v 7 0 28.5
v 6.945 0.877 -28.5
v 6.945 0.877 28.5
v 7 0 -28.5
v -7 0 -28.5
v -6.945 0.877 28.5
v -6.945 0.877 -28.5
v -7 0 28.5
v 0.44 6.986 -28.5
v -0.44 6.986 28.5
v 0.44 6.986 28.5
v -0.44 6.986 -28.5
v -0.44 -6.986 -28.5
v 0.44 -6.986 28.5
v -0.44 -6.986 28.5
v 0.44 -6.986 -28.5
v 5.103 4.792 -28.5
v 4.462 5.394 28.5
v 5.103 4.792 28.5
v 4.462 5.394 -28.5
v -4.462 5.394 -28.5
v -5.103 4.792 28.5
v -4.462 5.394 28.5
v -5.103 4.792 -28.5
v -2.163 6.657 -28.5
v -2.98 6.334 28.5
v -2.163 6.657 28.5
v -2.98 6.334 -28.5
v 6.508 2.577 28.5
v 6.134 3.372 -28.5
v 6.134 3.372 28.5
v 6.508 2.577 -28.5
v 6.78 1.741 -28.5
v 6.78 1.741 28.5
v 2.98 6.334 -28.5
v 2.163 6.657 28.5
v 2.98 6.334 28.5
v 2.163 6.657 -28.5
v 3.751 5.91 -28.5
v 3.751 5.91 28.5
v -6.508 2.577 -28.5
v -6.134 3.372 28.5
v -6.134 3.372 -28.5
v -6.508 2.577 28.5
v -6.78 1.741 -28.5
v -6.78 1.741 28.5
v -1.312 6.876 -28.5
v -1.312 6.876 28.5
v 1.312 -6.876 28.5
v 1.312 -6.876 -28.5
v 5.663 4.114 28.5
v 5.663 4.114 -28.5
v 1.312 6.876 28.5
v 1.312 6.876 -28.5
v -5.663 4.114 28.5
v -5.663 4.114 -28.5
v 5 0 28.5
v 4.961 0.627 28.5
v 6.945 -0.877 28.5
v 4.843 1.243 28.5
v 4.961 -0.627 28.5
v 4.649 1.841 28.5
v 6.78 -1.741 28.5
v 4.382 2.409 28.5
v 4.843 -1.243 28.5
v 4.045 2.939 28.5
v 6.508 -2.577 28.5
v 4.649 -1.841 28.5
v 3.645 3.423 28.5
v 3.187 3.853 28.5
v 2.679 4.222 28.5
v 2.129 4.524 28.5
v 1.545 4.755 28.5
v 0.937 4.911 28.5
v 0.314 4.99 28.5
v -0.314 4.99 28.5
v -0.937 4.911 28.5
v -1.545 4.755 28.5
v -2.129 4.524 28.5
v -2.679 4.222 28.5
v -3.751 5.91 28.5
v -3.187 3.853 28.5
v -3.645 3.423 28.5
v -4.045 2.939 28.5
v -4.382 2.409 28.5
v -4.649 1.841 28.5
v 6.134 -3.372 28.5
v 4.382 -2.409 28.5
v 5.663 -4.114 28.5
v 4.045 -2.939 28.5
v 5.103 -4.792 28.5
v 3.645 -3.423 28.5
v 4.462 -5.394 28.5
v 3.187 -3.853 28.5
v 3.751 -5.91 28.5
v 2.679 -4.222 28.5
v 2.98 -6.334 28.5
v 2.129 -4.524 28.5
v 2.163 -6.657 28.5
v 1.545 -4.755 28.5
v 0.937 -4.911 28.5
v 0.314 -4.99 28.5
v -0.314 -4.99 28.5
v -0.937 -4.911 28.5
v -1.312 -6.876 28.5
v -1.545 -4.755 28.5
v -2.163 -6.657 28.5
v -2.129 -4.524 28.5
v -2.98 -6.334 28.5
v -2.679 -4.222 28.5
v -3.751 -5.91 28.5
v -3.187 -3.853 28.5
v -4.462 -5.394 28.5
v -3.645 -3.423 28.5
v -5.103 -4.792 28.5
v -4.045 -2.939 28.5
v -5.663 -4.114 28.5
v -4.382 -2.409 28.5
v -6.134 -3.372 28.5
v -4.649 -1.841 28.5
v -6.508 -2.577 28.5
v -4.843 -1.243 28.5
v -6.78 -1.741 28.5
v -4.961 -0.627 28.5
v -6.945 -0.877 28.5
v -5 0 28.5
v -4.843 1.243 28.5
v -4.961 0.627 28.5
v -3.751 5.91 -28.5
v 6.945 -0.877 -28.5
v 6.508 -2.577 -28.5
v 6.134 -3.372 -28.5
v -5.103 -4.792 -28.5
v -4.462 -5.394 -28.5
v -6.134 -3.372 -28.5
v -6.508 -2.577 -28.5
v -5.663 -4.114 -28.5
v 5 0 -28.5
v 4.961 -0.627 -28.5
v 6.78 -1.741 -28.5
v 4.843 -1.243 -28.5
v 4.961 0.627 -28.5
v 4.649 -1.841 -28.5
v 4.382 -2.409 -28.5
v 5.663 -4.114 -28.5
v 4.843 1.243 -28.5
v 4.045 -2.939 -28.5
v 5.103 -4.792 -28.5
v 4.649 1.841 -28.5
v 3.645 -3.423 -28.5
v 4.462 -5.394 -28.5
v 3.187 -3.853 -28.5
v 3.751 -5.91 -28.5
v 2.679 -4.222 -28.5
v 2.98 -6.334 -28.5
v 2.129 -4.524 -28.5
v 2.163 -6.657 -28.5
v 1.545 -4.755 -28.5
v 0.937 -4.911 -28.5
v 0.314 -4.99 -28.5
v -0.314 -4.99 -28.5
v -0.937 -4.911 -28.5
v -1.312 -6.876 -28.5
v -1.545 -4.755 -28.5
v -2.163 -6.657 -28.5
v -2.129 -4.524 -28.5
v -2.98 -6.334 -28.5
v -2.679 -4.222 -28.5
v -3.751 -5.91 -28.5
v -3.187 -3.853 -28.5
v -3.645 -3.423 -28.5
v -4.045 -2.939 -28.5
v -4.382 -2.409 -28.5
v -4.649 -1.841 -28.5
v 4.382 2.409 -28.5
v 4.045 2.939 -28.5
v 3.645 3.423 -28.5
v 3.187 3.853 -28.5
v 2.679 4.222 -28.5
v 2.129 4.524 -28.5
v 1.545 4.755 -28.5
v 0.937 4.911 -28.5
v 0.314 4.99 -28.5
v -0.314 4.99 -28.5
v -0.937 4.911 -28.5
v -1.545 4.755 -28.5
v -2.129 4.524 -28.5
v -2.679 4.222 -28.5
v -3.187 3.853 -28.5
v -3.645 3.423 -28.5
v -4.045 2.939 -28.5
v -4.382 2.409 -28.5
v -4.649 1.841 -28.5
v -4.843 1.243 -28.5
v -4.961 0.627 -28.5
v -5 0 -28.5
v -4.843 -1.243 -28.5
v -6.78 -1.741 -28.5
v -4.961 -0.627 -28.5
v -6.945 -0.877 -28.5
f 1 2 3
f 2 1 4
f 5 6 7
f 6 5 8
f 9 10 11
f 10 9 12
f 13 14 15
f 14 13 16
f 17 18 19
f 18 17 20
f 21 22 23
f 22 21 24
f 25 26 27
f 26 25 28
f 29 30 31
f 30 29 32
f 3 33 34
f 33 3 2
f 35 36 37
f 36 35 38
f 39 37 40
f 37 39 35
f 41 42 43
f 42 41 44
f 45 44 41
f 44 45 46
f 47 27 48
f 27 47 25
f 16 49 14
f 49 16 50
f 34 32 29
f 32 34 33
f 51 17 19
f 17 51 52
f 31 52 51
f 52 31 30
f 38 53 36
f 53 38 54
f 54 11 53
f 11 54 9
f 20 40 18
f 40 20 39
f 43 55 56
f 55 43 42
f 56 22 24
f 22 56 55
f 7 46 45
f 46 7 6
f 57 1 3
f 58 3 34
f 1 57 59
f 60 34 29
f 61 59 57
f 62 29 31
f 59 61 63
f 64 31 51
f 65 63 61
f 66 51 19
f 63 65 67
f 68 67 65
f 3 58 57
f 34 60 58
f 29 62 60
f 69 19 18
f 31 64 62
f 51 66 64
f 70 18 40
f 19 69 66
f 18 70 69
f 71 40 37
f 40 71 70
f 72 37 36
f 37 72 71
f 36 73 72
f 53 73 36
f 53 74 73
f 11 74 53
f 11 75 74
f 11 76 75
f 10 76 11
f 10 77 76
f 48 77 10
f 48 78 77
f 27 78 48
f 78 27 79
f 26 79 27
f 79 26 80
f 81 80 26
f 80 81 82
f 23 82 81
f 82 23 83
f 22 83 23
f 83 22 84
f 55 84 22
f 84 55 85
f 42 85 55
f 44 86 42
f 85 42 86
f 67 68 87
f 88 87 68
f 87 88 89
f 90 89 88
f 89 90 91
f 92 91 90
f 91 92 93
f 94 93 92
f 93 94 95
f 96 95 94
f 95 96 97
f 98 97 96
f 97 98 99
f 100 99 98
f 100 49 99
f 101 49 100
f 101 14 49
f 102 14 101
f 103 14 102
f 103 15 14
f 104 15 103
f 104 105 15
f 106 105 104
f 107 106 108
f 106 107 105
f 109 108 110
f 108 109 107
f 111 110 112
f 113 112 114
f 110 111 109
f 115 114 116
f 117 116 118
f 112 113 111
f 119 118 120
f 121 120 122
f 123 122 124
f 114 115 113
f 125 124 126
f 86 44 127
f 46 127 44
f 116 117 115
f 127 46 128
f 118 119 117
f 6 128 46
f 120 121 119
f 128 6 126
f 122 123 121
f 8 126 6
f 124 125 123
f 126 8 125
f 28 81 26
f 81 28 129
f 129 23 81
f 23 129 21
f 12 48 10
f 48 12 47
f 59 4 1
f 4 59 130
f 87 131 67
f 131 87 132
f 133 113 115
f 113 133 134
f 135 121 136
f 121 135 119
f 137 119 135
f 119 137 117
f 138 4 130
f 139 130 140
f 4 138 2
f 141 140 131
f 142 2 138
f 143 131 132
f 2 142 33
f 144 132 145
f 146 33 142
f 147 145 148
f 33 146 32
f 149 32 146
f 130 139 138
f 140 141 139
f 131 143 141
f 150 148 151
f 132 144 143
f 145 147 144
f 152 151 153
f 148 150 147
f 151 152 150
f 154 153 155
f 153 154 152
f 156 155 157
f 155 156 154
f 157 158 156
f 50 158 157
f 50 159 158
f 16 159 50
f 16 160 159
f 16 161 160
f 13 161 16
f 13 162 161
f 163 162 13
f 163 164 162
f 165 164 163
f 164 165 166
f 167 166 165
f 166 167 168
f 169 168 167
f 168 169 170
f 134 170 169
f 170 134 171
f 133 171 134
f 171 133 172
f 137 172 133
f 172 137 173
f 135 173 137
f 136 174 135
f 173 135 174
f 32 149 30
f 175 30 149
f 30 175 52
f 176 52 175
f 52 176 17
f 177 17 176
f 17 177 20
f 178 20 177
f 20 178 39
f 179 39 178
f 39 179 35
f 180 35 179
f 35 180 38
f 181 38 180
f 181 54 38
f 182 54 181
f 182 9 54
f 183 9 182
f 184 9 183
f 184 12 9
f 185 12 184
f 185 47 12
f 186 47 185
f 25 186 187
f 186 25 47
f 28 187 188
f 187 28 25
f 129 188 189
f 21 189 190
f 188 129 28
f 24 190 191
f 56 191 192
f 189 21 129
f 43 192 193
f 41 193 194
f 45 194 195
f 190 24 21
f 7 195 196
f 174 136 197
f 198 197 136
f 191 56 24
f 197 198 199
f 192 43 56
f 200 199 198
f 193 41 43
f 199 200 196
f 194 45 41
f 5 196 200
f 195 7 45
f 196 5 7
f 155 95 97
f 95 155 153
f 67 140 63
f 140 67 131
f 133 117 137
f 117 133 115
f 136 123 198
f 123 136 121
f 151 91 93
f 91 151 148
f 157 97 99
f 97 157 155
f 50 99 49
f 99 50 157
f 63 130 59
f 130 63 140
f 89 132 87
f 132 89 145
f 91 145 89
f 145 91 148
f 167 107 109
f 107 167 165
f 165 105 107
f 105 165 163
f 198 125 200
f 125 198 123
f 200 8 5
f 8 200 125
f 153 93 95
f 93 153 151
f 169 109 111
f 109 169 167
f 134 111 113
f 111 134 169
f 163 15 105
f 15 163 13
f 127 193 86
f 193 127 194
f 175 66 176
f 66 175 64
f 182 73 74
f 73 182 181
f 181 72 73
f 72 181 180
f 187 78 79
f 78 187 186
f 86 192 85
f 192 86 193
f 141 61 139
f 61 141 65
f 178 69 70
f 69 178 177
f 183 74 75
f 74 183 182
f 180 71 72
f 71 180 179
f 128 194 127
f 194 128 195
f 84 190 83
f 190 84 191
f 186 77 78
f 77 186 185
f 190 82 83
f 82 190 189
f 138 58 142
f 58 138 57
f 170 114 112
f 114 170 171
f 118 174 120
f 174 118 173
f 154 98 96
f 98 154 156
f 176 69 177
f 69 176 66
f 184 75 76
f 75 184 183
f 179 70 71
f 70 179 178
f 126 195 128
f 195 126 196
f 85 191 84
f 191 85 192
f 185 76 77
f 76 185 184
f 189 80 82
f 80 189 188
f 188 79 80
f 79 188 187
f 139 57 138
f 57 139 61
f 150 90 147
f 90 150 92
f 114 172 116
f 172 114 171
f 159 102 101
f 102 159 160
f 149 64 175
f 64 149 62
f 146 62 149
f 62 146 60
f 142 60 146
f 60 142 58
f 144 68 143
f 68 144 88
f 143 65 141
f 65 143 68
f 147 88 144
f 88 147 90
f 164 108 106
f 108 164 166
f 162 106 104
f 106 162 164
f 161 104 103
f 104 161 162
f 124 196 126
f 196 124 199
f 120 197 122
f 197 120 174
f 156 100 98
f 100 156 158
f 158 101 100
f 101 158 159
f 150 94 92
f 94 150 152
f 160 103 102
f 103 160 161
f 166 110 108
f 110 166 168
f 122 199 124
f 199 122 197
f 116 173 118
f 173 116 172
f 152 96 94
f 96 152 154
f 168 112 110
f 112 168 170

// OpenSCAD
$fn = 50;


difference() {
	union() {
		translate(v = [0, 0, -28.5000000000]) {
			cylinder(h = 57, r = 7.0000000000);
		}
	}
	union() {
		translate(v = [0, 0, -100.0000000000]) {
			cylinder(h = 200, r = 5);
		}
	}
}
